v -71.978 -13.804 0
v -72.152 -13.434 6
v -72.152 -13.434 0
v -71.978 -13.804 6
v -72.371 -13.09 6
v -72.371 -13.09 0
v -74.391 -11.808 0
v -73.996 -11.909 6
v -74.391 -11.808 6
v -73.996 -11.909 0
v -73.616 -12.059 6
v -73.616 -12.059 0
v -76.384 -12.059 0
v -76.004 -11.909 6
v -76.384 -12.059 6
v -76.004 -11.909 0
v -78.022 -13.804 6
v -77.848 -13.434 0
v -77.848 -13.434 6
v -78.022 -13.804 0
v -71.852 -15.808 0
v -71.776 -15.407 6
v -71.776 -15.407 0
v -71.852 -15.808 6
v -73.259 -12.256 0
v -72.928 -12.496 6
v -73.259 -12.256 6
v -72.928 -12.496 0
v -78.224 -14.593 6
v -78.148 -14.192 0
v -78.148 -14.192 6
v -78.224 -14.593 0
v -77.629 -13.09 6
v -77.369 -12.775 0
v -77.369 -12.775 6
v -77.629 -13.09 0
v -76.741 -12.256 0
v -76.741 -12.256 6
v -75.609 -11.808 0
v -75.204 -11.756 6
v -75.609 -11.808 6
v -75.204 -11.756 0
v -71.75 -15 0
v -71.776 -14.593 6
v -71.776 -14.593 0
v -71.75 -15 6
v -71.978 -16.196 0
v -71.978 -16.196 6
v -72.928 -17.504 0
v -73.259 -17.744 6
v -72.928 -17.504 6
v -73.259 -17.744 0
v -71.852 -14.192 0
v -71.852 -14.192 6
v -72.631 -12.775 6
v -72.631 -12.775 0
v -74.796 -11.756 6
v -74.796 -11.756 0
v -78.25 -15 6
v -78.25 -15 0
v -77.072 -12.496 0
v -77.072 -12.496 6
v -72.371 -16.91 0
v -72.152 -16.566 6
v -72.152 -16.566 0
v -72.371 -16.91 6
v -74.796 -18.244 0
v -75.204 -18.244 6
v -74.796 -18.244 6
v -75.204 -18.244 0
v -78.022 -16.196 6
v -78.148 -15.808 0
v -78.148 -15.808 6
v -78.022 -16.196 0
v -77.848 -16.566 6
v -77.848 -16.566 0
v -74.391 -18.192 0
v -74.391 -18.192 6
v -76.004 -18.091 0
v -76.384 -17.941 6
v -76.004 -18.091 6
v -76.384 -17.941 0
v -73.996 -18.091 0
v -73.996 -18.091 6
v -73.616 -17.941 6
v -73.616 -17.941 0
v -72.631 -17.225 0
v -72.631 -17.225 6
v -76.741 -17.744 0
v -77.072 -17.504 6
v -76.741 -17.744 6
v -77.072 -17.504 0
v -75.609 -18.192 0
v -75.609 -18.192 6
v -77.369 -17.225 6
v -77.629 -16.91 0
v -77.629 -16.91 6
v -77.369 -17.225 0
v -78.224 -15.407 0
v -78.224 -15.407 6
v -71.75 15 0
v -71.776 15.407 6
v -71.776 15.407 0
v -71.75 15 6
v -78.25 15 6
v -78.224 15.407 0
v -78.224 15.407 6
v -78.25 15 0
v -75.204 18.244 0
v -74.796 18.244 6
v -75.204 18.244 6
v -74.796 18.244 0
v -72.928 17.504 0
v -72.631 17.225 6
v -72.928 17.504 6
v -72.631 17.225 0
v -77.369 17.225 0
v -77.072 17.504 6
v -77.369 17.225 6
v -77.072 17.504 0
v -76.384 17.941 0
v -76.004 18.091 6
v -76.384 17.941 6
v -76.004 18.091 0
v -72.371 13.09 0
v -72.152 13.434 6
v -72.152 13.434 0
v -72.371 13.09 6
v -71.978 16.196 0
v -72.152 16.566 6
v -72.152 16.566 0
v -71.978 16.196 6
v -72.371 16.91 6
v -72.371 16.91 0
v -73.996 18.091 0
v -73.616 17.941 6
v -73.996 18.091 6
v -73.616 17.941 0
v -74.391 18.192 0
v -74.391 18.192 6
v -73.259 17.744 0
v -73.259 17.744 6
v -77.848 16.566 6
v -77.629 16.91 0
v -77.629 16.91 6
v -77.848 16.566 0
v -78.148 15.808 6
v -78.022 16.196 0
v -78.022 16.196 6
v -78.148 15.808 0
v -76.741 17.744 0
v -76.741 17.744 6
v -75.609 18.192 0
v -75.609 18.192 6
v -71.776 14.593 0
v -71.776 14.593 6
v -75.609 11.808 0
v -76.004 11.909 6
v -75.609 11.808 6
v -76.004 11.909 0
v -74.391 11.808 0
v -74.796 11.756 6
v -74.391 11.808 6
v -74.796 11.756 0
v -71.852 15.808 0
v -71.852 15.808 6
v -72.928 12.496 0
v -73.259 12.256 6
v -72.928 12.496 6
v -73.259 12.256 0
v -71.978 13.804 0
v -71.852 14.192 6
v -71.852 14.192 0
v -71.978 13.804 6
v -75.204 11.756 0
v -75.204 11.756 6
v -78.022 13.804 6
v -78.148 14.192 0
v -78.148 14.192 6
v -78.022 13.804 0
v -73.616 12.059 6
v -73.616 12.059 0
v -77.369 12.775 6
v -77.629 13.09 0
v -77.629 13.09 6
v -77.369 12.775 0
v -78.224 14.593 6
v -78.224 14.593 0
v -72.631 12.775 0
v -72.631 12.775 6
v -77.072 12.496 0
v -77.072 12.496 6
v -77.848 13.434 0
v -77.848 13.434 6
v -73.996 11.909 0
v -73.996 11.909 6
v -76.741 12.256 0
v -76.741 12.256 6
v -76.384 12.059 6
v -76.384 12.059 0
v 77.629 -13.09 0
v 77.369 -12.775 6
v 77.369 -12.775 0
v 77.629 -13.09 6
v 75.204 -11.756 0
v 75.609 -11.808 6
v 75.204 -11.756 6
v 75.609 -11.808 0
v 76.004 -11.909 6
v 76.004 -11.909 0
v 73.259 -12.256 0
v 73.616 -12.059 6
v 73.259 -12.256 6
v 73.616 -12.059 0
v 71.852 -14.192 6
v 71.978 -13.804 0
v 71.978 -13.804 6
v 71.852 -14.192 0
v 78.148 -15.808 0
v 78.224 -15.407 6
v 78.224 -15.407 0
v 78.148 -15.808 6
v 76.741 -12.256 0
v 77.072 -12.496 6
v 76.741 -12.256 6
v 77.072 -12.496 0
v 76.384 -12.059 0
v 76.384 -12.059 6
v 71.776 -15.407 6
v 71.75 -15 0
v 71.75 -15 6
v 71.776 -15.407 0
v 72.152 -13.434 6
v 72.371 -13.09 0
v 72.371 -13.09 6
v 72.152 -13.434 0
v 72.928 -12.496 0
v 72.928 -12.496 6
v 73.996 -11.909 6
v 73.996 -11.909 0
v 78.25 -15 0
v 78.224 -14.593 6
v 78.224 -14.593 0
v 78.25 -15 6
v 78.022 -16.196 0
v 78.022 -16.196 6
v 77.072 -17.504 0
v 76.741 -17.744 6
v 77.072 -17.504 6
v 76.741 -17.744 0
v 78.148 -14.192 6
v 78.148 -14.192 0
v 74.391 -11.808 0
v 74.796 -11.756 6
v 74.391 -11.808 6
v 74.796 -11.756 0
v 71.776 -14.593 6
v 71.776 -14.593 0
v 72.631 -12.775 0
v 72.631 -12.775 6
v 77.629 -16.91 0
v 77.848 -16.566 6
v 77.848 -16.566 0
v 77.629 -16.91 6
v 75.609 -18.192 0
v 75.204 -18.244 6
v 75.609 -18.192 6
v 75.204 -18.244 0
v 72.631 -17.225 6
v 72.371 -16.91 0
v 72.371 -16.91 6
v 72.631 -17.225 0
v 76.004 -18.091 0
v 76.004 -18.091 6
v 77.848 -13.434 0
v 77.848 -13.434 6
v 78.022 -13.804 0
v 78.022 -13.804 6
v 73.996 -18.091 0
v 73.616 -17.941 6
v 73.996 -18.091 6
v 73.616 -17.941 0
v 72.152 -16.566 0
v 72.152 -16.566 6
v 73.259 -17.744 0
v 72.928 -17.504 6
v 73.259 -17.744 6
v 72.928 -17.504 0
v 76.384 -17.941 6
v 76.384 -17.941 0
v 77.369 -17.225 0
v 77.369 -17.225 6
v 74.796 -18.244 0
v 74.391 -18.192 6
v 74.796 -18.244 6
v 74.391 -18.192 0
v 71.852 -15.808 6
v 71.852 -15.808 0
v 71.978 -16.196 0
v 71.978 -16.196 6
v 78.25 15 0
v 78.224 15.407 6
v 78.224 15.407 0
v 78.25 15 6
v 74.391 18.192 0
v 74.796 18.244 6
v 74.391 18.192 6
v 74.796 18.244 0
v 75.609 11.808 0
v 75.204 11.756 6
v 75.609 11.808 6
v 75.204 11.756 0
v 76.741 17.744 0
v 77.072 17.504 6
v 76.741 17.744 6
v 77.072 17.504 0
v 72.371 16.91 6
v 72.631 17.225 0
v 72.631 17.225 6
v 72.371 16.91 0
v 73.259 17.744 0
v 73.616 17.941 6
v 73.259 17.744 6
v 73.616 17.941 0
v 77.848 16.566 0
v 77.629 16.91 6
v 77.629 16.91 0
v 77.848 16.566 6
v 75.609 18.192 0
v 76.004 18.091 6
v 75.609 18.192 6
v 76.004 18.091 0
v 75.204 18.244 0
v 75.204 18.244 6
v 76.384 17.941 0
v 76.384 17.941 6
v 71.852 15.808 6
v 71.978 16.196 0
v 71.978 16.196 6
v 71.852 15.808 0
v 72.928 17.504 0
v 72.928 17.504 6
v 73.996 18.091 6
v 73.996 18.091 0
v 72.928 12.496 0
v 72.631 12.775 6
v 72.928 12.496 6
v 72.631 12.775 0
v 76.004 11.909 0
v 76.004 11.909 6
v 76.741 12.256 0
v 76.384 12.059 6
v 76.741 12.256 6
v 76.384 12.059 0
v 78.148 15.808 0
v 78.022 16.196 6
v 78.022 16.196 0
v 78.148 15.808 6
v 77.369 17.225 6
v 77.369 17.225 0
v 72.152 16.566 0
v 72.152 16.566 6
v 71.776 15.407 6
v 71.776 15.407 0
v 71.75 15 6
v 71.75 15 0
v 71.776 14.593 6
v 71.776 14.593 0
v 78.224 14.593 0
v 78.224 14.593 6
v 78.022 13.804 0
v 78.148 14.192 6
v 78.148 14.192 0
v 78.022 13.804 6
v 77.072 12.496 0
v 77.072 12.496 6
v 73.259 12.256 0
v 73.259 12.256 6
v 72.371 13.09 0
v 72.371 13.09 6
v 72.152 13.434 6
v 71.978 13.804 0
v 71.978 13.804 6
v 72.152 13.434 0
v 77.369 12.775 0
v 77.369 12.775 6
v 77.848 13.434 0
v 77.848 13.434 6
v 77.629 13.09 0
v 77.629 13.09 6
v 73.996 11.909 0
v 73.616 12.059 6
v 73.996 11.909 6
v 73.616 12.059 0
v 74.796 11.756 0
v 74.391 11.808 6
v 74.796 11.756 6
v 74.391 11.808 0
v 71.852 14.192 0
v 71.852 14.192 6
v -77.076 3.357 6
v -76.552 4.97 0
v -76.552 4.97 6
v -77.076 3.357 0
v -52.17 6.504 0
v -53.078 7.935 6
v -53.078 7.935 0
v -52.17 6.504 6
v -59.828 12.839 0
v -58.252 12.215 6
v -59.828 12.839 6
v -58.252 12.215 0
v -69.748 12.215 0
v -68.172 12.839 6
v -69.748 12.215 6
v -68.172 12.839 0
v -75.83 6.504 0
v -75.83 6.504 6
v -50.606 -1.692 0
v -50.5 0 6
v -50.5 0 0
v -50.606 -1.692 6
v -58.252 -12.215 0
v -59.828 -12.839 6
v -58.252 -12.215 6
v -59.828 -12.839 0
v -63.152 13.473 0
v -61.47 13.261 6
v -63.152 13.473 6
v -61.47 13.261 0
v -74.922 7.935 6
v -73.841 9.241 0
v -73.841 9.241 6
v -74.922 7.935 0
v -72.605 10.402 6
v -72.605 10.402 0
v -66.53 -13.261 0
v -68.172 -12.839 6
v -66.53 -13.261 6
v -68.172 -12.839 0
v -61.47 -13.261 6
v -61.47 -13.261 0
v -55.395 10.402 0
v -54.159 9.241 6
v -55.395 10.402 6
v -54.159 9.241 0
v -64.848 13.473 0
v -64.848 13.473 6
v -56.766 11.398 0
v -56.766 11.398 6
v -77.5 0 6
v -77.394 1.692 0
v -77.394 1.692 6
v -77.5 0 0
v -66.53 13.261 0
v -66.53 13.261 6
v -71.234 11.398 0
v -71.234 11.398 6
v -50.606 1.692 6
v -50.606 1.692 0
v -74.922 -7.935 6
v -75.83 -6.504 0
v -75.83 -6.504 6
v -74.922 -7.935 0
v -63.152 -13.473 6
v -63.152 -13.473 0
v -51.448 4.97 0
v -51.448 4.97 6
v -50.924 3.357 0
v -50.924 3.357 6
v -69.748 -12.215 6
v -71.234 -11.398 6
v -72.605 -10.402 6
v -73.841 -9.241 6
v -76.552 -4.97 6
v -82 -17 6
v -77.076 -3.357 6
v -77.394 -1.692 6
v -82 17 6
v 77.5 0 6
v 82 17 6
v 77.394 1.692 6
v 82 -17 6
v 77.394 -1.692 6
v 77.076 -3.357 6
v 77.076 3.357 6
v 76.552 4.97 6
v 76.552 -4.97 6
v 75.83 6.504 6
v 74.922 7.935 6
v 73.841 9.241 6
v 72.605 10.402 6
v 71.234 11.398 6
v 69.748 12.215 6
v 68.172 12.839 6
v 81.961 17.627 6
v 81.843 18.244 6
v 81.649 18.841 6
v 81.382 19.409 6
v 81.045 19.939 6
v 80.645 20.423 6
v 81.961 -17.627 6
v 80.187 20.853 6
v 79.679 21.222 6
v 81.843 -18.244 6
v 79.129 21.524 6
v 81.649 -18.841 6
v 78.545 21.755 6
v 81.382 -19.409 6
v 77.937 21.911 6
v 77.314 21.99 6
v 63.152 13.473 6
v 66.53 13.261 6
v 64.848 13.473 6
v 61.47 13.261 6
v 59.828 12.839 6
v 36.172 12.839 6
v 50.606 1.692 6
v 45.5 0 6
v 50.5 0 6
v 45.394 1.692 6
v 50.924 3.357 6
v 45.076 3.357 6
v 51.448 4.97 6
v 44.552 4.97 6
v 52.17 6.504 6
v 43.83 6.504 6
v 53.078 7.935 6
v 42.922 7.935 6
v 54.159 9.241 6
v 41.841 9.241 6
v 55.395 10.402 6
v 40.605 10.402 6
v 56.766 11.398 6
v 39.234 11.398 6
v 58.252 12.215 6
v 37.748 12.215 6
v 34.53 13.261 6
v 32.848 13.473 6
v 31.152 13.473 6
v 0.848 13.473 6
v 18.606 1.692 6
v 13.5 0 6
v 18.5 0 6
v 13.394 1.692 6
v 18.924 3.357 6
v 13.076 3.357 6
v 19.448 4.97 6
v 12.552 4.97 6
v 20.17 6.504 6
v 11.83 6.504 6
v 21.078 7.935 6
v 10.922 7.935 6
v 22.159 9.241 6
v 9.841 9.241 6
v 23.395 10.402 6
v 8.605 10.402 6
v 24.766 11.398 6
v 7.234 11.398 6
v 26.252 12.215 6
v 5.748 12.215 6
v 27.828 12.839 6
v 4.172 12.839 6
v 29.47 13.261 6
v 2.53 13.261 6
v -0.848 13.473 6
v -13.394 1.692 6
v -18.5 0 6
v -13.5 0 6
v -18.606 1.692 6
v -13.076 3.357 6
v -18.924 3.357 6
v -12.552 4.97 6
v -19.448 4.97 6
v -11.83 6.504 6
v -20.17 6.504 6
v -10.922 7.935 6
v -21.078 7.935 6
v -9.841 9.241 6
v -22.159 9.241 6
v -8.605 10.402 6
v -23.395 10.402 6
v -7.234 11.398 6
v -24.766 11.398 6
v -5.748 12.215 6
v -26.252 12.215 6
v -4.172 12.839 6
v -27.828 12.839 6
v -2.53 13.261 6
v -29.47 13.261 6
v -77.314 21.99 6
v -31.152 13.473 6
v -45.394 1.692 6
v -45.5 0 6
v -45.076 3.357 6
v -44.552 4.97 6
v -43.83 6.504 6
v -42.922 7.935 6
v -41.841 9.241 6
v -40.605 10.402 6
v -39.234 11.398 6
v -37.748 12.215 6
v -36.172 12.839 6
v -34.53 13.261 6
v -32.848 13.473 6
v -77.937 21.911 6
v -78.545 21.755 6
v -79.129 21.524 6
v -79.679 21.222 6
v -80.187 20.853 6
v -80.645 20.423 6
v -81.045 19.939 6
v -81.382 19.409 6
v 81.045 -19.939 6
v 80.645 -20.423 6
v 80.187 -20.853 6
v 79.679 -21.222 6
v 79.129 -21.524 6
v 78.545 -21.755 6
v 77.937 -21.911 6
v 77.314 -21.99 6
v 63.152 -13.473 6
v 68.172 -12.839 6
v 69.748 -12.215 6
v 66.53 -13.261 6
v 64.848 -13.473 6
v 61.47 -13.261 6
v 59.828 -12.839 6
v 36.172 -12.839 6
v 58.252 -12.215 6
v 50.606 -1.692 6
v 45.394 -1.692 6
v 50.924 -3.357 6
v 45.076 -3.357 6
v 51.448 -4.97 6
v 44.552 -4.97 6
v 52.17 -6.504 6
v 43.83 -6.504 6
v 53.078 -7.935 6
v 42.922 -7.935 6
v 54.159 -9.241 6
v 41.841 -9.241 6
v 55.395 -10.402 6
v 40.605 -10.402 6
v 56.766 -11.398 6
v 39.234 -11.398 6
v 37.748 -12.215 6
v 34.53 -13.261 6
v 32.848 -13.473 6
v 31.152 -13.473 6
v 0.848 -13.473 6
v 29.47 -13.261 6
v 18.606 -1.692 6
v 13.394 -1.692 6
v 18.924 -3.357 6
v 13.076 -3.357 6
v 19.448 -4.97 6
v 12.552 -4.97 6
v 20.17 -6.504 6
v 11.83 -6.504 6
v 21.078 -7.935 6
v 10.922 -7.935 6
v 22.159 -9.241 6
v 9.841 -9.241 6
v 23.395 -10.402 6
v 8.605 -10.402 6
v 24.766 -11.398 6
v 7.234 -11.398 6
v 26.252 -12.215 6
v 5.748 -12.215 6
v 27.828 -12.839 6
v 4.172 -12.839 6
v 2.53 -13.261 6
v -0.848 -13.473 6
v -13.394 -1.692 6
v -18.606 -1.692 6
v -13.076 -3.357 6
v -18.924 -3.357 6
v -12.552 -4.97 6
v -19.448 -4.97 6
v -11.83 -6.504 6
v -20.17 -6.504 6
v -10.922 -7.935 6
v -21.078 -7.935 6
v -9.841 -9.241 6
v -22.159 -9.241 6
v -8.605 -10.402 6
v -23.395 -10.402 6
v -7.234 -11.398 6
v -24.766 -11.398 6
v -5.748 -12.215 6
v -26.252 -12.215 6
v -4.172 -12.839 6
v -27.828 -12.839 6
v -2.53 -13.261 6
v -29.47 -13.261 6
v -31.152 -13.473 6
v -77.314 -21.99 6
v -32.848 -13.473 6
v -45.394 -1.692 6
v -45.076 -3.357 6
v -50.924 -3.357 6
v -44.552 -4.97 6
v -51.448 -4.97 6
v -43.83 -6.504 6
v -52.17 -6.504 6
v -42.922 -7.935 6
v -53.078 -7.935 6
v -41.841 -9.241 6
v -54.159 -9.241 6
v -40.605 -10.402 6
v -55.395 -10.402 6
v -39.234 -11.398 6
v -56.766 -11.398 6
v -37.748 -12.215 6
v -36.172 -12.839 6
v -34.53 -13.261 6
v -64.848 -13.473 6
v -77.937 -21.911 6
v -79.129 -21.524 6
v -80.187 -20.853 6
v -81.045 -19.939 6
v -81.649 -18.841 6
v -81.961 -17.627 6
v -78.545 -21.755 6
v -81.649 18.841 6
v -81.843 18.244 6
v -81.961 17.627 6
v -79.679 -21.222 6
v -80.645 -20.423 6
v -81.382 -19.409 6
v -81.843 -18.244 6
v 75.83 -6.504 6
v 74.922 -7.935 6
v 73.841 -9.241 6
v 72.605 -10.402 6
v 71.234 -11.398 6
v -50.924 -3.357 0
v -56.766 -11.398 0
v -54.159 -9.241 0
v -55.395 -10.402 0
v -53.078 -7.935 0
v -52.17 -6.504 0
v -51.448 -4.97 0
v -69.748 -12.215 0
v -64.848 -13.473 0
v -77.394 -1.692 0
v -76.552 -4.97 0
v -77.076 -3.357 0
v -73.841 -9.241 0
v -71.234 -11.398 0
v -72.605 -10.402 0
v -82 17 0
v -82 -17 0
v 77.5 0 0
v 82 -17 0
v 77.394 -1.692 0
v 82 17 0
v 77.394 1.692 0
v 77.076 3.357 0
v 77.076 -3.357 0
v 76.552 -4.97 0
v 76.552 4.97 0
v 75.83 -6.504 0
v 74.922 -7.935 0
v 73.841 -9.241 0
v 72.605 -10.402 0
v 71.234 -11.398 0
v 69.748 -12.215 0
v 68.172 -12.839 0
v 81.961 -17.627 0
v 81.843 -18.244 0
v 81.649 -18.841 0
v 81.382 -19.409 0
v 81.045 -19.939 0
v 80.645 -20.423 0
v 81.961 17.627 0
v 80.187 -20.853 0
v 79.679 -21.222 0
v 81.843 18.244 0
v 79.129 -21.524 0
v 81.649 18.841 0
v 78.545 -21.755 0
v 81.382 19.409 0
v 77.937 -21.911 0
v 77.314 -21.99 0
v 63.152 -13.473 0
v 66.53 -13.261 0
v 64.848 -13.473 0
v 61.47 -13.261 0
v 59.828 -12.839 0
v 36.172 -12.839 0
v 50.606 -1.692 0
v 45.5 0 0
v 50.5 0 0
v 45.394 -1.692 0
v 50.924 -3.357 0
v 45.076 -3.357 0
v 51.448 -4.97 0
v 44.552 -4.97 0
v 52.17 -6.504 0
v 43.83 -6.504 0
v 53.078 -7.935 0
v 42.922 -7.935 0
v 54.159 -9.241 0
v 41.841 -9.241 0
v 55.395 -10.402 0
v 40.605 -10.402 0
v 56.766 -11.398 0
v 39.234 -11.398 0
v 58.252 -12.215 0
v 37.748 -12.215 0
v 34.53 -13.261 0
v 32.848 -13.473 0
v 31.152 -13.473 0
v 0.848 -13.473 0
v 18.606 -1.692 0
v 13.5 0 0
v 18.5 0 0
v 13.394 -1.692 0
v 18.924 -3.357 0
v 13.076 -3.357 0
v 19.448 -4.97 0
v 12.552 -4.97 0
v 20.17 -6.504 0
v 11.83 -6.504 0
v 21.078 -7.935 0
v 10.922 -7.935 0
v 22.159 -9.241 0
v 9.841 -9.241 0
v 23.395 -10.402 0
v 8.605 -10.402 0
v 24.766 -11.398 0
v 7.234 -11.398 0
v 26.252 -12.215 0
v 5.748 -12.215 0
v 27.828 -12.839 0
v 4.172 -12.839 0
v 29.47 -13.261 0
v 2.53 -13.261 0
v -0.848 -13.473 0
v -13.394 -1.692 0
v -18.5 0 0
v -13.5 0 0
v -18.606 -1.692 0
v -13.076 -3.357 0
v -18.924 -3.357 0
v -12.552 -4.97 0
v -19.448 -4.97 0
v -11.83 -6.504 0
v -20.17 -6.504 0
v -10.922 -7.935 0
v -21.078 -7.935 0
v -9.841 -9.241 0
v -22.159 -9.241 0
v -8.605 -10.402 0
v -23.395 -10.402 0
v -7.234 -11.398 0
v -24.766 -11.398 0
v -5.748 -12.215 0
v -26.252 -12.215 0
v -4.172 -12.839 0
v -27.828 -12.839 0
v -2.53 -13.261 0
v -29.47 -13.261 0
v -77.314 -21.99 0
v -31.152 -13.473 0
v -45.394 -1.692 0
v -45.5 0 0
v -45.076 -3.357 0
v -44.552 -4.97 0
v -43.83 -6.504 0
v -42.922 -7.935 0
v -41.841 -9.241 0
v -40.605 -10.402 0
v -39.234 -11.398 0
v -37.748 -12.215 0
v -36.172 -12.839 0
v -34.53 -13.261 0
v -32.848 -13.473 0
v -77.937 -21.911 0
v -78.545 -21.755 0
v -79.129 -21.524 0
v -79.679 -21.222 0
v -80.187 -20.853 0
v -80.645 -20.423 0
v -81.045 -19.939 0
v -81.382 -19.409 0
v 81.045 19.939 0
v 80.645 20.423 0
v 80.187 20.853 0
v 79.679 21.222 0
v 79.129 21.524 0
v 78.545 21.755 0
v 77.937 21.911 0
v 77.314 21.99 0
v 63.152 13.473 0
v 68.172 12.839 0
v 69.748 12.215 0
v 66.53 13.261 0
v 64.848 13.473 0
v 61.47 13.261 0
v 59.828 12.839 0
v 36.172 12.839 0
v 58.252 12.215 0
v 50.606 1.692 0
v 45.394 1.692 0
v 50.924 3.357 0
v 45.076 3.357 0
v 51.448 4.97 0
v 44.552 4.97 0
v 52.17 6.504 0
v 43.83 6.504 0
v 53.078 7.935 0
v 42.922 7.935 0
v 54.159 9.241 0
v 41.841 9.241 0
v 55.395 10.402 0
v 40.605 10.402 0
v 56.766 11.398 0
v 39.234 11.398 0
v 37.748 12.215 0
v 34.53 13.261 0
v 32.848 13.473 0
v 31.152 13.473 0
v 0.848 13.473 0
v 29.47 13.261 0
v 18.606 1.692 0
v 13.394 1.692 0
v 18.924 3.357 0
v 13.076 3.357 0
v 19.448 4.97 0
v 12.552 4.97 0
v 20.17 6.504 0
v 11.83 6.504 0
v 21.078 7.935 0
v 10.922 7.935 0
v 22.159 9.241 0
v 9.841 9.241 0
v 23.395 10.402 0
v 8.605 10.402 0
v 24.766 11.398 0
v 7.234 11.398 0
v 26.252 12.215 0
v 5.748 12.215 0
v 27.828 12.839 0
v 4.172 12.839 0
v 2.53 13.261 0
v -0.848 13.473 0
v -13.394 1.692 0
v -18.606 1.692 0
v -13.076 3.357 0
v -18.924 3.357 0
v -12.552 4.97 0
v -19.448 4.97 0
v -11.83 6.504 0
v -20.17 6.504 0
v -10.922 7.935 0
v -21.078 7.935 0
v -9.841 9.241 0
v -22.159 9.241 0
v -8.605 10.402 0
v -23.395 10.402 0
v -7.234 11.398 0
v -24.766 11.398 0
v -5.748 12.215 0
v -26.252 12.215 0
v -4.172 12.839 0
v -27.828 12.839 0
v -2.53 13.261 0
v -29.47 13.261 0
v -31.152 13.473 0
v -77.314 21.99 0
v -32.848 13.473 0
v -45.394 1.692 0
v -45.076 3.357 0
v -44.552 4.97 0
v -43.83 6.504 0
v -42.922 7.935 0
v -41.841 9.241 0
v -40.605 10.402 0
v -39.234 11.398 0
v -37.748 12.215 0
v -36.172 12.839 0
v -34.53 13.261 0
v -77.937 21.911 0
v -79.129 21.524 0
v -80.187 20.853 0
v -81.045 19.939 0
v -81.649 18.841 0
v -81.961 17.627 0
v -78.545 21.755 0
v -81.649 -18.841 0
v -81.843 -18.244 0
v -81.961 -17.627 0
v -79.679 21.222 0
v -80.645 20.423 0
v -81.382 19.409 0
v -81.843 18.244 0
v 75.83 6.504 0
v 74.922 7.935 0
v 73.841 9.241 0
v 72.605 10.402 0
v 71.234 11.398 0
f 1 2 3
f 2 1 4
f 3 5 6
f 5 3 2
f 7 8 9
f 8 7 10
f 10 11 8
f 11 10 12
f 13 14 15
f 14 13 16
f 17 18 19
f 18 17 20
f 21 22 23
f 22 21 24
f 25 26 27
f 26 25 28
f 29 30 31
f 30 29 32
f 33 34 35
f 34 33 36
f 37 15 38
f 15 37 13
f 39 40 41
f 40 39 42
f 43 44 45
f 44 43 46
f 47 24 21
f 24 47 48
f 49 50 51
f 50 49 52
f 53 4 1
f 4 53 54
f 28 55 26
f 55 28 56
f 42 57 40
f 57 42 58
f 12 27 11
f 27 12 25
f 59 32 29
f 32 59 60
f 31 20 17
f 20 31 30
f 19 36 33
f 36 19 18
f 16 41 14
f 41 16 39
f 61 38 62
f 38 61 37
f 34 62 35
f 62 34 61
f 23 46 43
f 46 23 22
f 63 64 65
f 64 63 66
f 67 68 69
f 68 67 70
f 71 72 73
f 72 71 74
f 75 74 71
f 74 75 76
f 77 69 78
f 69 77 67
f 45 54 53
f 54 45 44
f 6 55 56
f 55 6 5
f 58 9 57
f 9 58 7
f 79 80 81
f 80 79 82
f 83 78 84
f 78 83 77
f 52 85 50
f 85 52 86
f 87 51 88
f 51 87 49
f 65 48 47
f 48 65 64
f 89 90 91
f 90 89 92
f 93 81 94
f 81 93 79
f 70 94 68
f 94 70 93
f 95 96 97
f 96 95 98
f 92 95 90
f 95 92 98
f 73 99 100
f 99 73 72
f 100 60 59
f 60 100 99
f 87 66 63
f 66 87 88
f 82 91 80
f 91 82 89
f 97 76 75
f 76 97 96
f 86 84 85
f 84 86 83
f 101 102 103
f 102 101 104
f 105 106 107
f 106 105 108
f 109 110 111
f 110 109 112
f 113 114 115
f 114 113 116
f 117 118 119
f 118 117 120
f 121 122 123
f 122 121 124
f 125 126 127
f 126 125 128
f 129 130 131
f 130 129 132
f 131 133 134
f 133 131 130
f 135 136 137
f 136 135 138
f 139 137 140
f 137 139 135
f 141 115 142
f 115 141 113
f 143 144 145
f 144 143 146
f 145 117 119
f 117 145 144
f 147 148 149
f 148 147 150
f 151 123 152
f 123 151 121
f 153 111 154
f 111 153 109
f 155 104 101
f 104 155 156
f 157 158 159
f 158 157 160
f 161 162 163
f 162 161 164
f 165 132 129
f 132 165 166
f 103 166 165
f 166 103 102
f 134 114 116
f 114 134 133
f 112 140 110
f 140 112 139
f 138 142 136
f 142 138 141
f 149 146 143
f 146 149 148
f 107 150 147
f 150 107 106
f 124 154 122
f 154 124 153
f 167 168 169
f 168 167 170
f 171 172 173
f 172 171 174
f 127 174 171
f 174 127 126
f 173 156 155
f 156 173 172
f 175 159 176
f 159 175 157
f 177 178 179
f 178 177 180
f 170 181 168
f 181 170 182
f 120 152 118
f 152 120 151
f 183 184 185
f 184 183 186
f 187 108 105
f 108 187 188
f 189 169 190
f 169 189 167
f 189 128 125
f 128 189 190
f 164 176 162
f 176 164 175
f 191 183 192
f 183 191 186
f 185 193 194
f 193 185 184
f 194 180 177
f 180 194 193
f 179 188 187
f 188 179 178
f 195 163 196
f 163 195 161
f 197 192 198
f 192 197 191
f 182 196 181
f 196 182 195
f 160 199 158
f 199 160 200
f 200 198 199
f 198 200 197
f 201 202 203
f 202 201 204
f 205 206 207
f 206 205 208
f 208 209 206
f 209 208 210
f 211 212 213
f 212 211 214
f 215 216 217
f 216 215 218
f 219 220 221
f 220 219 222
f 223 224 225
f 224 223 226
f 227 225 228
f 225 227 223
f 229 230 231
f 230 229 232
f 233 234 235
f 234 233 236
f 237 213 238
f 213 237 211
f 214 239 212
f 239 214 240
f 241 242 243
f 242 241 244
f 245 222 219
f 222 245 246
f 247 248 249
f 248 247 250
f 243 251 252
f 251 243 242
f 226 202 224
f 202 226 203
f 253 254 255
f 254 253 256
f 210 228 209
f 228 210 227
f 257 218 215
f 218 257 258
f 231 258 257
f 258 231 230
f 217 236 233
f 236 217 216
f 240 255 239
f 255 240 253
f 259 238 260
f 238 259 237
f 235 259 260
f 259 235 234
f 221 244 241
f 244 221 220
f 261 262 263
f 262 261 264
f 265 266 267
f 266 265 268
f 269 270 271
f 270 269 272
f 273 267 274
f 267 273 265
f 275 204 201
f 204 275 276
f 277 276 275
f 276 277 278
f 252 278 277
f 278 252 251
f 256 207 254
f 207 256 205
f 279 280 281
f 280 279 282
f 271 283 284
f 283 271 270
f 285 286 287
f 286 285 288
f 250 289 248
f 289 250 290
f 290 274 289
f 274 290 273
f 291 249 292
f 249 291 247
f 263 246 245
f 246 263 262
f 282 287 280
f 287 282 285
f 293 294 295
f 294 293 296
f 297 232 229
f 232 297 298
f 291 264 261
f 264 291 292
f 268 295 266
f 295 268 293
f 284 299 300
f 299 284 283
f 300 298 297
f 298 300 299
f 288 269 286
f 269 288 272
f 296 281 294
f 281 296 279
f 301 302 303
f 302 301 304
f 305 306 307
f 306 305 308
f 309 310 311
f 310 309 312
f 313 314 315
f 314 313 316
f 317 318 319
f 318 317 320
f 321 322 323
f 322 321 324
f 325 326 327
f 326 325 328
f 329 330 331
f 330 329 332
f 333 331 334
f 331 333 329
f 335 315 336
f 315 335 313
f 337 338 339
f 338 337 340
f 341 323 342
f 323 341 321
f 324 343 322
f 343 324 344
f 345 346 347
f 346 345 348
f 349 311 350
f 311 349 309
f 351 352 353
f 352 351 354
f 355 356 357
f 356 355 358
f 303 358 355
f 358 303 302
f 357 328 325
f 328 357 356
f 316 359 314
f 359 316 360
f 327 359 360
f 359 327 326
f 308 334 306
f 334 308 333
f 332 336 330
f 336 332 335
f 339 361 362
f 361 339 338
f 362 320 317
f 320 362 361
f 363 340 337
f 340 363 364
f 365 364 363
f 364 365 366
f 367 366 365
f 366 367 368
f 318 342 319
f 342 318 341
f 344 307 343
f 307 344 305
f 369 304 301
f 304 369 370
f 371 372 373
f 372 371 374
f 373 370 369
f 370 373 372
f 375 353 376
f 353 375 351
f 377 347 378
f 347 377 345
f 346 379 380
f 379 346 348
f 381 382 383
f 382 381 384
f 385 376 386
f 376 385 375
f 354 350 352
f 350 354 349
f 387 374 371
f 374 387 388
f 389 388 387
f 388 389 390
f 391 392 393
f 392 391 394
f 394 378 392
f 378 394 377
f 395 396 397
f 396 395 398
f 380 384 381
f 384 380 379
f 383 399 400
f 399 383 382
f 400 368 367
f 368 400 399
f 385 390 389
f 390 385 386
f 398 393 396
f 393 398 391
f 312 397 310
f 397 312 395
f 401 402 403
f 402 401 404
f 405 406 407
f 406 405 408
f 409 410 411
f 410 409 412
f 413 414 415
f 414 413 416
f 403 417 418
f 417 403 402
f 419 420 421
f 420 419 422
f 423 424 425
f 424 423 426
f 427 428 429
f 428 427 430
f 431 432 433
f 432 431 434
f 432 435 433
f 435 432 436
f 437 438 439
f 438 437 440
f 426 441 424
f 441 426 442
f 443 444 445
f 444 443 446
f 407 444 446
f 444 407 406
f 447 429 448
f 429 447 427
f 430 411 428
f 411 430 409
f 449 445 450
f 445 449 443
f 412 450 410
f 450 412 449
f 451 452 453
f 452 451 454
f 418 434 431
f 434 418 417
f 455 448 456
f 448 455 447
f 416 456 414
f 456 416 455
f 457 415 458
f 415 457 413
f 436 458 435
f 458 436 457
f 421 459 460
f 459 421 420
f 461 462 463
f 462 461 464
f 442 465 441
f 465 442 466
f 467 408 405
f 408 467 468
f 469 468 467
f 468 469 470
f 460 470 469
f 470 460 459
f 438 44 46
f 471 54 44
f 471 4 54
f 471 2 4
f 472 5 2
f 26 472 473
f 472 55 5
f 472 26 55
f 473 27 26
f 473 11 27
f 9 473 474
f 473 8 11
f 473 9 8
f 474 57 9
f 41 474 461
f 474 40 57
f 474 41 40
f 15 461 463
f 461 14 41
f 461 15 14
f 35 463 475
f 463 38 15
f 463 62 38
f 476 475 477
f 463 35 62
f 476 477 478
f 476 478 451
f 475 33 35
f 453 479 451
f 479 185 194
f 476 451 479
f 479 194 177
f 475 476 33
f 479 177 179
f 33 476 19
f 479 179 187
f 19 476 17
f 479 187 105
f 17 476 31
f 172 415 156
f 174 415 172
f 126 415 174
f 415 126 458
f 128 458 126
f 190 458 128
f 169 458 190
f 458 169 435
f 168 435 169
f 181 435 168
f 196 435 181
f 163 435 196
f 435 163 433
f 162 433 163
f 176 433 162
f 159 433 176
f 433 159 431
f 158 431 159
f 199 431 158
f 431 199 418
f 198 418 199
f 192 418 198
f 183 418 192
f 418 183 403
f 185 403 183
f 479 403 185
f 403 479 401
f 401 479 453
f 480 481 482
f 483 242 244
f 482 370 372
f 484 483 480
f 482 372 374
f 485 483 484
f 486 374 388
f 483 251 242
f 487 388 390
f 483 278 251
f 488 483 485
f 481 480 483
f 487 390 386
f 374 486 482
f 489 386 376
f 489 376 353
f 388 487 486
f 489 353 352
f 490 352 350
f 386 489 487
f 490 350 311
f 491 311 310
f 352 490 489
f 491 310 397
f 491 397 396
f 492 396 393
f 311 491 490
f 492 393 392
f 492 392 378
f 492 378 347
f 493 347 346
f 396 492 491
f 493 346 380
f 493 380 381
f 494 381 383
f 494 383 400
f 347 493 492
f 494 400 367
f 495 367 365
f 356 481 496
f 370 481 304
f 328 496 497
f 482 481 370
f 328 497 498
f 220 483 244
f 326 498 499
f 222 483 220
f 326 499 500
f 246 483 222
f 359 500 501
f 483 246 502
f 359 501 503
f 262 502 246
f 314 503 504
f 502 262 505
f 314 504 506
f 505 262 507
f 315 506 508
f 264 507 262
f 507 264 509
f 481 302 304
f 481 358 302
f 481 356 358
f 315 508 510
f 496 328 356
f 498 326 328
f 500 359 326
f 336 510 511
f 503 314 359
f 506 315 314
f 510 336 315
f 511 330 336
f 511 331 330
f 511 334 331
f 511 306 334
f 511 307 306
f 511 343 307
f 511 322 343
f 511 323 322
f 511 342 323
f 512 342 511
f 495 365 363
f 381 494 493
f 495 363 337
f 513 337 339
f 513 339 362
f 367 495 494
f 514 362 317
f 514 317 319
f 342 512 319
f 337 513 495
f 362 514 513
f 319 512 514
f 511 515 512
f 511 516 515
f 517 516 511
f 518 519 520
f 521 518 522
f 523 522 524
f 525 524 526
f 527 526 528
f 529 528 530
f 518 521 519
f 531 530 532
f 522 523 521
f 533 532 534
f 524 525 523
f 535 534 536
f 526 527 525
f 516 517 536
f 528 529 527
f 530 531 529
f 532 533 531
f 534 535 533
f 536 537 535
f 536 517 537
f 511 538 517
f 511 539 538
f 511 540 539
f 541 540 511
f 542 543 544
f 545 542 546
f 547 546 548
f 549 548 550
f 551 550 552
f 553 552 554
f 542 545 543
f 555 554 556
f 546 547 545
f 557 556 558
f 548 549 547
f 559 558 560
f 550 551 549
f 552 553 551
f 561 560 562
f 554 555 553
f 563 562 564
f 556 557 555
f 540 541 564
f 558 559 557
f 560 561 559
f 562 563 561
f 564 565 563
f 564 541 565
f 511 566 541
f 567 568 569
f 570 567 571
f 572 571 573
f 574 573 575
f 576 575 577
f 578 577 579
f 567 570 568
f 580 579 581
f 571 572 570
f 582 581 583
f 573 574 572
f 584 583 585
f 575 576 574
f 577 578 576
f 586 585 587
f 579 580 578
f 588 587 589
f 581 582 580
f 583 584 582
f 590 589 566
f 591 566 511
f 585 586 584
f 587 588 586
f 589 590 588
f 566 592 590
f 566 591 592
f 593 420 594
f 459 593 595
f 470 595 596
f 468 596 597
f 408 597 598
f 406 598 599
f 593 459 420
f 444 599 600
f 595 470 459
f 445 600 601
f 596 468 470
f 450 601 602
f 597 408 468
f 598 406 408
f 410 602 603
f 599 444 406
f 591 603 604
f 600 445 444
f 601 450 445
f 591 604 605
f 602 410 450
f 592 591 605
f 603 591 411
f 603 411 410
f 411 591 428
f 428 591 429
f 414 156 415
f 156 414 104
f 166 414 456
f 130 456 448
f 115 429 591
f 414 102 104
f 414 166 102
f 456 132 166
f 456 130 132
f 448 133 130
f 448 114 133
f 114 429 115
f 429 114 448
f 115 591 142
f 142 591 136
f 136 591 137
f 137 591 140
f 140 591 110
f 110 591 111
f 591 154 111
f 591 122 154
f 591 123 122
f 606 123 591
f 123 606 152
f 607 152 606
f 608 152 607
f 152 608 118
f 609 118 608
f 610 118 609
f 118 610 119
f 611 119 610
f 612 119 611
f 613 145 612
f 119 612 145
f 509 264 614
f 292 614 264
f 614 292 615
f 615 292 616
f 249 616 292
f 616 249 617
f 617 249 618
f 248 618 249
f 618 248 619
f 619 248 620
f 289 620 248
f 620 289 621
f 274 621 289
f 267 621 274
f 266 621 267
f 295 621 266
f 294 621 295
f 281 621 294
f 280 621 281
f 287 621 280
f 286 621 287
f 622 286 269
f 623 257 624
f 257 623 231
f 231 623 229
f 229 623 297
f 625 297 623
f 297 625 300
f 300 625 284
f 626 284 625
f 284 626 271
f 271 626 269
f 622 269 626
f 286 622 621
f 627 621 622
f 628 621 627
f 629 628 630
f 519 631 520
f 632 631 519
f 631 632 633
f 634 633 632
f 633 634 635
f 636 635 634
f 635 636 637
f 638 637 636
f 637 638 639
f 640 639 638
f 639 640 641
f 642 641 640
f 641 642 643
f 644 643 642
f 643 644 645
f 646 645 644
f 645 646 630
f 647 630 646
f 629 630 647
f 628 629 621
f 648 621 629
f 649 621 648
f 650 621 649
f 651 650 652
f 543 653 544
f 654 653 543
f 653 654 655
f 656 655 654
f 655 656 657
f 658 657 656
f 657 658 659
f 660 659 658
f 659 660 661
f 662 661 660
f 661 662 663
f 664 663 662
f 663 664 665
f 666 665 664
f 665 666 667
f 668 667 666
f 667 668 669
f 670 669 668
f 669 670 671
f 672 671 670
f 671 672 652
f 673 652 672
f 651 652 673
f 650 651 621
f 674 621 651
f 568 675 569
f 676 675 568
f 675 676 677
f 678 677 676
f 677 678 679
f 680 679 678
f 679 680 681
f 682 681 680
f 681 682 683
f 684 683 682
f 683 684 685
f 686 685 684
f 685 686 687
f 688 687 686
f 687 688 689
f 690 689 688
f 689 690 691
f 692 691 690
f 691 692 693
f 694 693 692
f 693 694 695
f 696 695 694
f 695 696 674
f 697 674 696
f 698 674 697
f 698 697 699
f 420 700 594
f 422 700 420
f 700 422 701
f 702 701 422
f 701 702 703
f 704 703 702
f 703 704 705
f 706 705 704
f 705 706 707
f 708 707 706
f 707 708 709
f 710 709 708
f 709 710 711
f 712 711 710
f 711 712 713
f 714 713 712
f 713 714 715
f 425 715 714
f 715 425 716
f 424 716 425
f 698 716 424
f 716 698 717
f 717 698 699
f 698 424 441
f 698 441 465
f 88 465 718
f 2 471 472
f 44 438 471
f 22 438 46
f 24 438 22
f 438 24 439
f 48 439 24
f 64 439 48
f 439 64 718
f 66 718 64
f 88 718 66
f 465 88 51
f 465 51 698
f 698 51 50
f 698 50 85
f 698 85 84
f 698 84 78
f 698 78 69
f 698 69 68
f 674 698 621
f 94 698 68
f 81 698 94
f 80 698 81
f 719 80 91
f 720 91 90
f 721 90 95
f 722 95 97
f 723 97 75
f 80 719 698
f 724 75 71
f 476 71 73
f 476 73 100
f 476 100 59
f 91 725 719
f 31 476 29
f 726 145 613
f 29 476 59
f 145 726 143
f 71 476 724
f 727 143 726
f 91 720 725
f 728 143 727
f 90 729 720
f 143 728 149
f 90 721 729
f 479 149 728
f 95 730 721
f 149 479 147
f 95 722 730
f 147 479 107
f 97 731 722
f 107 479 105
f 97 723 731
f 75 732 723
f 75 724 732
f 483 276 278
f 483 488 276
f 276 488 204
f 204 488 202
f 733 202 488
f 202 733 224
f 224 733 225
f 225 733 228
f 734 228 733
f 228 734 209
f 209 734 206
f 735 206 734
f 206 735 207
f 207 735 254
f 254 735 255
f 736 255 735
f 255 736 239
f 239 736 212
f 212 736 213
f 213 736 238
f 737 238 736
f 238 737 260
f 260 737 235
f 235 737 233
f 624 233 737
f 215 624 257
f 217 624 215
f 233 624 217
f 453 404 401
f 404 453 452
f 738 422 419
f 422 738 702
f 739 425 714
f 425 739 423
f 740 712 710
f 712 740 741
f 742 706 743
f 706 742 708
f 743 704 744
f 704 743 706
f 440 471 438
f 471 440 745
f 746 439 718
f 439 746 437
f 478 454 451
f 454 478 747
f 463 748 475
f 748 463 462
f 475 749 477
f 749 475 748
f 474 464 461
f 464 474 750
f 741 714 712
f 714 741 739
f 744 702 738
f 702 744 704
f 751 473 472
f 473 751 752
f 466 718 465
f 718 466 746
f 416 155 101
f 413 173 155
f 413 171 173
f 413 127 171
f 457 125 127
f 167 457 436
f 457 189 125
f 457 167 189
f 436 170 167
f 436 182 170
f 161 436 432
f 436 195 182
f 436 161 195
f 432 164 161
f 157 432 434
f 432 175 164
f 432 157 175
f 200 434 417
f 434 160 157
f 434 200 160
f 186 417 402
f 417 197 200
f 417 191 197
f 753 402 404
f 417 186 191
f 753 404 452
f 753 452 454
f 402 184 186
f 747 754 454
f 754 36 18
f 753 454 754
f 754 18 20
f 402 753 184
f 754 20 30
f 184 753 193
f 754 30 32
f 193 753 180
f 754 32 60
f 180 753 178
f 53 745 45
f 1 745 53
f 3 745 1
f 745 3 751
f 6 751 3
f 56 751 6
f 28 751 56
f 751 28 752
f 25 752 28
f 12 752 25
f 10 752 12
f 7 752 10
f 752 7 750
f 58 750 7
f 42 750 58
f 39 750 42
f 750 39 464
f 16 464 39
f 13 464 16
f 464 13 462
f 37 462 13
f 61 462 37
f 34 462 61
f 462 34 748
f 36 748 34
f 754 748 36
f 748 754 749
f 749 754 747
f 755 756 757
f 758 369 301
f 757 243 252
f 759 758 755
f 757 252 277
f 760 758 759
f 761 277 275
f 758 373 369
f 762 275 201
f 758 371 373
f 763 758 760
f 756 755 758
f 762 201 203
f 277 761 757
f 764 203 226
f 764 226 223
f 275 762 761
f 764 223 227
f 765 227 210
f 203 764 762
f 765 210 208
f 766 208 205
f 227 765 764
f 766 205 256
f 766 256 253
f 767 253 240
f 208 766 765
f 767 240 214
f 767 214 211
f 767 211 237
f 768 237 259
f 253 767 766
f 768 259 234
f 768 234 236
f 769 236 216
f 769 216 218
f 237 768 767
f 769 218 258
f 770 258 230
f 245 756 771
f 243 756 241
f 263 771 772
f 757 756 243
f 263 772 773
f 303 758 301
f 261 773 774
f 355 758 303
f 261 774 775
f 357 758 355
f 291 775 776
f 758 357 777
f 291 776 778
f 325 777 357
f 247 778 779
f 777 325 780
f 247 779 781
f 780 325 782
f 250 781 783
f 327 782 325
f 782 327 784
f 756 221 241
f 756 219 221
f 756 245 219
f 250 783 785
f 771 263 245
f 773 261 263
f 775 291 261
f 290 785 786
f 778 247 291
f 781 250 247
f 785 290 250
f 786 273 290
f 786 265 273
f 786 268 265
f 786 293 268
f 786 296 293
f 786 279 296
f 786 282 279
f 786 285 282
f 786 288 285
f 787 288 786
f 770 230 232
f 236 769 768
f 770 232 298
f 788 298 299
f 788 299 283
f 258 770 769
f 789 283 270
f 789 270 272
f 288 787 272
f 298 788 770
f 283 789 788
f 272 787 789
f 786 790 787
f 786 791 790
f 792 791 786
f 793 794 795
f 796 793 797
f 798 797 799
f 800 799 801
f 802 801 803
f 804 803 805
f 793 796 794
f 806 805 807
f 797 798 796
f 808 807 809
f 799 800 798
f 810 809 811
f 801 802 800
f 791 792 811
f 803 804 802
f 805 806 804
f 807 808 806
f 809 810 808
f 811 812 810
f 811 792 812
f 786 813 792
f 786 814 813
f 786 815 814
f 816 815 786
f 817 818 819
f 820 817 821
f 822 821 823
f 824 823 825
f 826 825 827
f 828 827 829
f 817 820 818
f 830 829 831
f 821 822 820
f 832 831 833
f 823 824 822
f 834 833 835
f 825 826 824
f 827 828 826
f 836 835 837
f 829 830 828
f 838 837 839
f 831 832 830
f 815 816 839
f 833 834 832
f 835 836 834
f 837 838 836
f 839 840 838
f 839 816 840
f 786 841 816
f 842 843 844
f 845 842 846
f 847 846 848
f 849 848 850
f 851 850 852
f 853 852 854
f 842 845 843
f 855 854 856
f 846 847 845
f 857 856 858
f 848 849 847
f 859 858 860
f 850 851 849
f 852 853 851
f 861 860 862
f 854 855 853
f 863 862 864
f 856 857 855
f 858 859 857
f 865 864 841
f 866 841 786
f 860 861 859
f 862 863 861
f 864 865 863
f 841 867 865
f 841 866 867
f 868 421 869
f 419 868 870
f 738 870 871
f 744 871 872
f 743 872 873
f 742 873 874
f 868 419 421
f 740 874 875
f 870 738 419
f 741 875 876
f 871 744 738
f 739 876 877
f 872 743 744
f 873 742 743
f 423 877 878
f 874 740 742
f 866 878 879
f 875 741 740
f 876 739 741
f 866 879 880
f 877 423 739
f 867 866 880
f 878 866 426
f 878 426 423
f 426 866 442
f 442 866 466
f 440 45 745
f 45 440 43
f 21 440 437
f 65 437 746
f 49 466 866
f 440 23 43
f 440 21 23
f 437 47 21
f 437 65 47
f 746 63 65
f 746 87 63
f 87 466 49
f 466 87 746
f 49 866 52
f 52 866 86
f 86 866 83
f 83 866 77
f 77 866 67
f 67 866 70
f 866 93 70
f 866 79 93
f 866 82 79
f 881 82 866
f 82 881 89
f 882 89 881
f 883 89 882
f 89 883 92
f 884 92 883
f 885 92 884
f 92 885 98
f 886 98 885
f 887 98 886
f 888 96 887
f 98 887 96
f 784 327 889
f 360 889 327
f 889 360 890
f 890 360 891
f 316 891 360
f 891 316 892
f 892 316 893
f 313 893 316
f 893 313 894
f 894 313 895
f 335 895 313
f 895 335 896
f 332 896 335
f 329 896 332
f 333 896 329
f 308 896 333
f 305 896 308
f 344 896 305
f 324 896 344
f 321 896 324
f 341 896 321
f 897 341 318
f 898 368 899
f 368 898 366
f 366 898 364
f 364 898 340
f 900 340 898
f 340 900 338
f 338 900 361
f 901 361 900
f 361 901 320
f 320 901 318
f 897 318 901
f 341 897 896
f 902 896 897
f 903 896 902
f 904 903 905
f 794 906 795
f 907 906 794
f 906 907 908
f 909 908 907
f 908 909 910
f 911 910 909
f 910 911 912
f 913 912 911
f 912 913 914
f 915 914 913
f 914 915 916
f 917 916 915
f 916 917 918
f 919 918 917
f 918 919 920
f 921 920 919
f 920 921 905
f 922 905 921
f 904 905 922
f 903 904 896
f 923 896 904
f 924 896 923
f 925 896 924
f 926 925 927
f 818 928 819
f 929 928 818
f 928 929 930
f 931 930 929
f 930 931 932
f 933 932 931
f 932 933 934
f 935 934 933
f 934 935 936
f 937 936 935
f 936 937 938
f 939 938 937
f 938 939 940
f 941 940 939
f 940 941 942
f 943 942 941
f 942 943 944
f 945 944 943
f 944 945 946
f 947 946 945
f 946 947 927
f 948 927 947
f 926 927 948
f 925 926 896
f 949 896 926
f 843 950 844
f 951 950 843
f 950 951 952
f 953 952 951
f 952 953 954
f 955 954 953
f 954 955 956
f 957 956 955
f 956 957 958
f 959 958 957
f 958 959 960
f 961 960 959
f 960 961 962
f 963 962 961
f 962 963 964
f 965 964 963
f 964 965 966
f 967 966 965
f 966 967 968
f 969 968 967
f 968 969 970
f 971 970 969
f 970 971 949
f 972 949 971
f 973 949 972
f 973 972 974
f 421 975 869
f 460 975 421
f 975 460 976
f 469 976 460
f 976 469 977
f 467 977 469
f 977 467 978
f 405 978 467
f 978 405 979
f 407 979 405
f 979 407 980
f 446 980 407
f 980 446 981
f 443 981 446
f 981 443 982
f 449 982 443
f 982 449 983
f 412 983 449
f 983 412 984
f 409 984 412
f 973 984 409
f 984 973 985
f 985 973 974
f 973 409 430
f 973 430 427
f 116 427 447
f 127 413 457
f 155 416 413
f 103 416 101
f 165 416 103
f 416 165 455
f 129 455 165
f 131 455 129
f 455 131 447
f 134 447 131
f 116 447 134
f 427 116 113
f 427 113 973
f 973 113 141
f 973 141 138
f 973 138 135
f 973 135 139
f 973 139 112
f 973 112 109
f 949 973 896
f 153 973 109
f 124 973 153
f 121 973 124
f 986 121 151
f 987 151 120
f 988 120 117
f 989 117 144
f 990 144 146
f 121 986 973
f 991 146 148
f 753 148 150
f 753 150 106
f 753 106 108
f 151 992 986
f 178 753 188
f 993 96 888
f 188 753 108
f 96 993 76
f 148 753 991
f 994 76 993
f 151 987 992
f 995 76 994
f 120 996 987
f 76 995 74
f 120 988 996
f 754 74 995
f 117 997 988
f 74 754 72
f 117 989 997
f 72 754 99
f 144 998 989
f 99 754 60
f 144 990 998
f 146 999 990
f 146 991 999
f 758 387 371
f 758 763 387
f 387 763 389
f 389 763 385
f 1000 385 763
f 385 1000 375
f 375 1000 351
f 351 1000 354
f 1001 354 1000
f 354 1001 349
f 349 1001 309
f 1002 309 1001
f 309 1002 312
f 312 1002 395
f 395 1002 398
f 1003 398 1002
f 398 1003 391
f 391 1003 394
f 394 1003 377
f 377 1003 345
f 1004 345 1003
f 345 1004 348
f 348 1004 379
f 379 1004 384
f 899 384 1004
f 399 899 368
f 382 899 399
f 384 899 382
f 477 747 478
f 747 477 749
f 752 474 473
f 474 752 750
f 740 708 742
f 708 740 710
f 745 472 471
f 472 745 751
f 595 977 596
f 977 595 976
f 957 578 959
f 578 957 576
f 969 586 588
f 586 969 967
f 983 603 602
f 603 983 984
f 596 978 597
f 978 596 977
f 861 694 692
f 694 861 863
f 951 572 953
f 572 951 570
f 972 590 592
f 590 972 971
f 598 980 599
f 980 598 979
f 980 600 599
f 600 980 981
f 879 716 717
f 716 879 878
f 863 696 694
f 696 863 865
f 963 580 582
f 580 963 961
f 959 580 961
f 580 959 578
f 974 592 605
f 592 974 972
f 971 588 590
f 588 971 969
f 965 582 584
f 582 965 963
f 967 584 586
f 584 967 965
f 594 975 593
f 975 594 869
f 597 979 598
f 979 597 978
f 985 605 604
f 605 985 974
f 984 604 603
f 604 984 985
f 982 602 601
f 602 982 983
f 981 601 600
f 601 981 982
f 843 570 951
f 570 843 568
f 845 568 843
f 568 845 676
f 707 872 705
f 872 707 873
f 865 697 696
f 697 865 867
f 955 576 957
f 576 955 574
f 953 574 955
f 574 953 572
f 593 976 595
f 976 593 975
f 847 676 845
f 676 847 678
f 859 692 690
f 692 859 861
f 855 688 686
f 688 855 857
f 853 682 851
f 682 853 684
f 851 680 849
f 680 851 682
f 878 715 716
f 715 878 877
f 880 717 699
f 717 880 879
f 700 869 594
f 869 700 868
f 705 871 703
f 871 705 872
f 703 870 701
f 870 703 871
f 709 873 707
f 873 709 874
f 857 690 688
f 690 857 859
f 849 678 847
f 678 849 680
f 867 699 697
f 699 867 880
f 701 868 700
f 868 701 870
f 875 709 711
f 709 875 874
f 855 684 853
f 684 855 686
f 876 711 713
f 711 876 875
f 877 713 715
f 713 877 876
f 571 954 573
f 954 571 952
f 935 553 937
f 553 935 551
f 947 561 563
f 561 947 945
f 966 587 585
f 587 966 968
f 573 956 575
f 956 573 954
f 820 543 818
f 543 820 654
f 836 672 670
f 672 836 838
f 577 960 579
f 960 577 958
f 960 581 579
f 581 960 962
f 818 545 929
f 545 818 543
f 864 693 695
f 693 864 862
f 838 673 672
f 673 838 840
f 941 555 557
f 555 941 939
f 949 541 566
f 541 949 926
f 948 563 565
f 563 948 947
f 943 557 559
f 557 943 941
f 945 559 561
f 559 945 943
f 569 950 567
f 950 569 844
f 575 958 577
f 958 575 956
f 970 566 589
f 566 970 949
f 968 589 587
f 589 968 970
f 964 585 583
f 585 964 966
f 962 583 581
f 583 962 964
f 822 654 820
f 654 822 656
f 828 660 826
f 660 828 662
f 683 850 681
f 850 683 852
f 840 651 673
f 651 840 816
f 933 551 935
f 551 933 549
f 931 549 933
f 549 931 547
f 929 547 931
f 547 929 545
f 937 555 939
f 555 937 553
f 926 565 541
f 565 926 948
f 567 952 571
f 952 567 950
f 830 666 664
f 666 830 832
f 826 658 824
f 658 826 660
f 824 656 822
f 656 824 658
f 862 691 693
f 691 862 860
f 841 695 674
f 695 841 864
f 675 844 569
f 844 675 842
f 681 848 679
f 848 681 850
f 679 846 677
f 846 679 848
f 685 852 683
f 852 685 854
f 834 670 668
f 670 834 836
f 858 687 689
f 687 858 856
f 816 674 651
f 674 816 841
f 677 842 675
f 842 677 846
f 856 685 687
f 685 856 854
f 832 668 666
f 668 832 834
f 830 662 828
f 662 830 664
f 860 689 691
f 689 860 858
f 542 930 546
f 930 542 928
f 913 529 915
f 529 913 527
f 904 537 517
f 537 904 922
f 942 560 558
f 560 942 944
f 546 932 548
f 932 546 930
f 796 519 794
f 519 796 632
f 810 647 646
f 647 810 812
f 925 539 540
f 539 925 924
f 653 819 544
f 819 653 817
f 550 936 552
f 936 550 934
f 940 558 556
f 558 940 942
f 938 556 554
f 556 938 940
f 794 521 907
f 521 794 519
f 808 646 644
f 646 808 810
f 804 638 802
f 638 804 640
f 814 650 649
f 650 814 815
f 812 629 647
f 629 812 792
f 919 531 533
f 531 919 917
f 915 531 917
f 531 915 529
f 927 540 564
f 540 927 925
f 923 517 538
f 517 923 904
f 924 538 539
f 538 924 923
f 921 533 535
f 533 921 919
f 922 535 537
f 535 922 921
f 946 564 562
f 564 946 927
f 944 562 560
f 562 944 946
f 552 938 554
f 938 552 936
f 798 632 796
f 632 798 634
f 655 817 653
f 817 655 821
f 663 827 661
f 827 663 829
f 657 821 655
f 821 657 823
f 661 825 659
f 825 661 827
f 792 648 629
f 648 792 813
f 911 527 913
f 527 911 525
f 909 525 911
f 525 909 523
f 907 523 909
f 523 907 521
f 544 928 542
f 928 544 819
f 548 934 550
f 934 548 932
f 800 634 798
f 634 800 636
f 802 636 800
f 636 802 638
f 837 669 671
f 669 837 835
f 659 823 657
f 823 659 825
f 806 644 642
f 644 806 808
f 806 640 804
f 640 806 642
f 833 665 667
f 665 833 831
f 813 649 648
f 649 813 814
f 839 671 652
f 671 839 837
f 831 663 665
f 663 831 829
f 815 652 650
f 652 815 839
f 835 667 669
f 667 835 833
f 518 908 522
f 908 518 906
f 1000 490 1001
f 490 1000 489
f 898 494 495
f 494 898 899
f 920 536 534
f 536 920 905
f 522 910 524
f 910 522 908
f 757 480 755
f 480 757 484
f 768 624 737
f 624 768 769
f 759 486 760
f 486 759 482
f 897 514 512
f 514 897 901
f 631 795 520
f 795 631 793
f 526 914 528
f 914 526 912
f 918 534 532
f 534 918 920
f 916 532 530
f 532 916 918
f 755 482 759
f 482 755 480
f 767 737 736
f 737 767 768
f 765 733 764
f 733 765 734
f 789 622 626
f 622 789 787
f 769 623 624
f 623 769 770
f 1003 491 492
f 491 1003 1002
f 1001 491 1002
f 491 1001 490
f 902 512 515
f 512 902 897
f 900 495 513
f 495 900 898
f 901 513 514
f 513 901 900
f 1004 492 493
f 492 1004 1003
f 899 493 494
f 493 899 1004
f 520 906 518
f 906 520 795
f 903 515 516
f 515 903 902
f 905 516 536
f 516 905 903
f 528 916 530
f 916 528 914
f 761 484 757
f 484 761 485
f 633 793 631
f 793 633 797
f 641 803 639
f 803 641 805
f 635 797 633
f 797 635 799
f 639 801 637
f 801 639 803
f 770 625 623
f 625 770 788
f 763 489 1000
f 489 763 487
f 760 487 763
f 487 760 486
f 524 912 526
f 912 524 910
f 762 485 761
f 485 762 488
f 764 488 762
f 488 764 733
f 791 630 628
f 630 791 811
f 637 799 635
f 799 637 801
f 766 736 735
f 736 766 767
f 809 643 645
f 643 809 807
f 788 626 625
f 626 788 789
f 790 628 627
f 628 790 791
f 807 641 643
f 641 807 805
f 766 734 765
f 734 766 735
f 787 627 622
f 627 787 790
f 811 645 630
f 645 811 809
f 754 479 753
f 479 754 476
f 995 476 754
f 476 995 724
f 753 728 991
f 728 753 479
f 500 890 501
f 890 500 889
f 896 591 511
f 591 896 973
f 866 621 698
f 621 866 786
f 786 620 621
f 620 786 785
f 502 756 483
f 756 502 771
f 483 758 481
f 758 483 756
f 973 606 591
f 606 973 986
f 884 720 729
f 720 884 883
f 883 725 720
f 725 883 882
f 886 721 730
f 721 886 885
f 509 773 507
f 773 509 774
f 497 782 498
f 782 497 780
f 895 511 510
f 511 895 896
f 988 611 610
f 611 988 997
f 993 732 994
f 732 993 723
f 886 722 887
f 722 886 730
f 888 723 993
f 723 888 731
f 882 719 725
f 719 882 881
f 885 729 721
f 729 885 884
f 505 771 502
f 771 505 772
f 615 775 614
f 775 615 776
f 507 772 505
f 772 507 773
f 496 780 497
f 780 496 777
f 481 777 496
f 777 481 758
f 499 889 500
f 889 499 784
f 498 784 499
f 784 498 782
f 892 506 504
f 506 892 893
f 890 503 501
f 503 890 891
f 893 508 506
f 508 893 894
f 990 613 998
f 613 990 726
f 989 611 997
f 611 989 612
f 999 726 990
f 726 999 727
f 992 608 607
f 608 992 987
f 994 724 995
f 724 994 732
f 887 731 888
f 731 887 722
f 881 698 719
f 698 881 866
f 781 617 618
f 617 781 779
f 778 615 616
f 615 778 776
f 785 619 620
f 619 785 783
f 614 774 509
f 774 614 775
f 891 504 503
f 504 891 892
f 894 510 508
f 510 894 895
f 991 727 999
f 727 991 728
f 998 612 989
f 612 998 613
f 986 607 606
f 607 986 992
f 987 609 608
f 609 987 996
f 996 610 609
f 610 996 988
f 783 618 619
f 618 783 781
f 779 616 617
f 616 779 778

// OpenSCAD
$fn = 50;


difference() {
	union() {
		hull() {
			translate(v = [-77.0000000000, 17.0000000000, 0]) {
				cylinder(h = 6, r = 5);
			}
			translate(v = [77.0000000000, 17.0000000000, 0]) {
				cylinder(h = 6, r = 5);
			}
			translate(v = [-77.0000000000, -17.0000000000, 0]) {
				cylinder(h = 6, r = 5);
			}
			translate(v = [77.0000000000, -17.0000000000, 0]) {
				cylinder(h = 6, r = 5);
			}
		}
	}
	union() {
		#translate(v = [-75.0000000000, -15.0000000000, -100.0000000000]) {
			cylinder(h = 200, r = 3.2500000000);
		}
		#translate(v = [-75.0000000000, 15.0000000000, -100.0000000000]) {
			cylinder(h = 200, r = 3.2500000000);
		}
		#translate(v = [75.0000000000, -15.0000000000, -100.0000000000]) {
			cylinder(h = 200, r = 3.2500000000);
		}
		#translate(v = [75.0000000000, 15.0000000000, -100.0000000000]) {
			cylinder(h = 200, r = 3.2500000000);
		}
		#translate(v = [-64.0000000000, 0, 0]) {
			cylinder(h = 6, r = 13.5000000000);
		}
		#translate(v = [-32.0000000000, 0, 0]) {
			cylinder(h = 6, r = 13.5000000000);
		}
		#cylinder(h = 6, r = 13.5000000000);
		#translate(v = [32.0000000000, 0, 0]) {
			cylinder(h = 6, r = 13.5000000000);
		}
		#translate(v = [64.0000000000, 0, 0]) {
			cylinder(h = 6, r = 13.5000000000);
		}
	}
}
